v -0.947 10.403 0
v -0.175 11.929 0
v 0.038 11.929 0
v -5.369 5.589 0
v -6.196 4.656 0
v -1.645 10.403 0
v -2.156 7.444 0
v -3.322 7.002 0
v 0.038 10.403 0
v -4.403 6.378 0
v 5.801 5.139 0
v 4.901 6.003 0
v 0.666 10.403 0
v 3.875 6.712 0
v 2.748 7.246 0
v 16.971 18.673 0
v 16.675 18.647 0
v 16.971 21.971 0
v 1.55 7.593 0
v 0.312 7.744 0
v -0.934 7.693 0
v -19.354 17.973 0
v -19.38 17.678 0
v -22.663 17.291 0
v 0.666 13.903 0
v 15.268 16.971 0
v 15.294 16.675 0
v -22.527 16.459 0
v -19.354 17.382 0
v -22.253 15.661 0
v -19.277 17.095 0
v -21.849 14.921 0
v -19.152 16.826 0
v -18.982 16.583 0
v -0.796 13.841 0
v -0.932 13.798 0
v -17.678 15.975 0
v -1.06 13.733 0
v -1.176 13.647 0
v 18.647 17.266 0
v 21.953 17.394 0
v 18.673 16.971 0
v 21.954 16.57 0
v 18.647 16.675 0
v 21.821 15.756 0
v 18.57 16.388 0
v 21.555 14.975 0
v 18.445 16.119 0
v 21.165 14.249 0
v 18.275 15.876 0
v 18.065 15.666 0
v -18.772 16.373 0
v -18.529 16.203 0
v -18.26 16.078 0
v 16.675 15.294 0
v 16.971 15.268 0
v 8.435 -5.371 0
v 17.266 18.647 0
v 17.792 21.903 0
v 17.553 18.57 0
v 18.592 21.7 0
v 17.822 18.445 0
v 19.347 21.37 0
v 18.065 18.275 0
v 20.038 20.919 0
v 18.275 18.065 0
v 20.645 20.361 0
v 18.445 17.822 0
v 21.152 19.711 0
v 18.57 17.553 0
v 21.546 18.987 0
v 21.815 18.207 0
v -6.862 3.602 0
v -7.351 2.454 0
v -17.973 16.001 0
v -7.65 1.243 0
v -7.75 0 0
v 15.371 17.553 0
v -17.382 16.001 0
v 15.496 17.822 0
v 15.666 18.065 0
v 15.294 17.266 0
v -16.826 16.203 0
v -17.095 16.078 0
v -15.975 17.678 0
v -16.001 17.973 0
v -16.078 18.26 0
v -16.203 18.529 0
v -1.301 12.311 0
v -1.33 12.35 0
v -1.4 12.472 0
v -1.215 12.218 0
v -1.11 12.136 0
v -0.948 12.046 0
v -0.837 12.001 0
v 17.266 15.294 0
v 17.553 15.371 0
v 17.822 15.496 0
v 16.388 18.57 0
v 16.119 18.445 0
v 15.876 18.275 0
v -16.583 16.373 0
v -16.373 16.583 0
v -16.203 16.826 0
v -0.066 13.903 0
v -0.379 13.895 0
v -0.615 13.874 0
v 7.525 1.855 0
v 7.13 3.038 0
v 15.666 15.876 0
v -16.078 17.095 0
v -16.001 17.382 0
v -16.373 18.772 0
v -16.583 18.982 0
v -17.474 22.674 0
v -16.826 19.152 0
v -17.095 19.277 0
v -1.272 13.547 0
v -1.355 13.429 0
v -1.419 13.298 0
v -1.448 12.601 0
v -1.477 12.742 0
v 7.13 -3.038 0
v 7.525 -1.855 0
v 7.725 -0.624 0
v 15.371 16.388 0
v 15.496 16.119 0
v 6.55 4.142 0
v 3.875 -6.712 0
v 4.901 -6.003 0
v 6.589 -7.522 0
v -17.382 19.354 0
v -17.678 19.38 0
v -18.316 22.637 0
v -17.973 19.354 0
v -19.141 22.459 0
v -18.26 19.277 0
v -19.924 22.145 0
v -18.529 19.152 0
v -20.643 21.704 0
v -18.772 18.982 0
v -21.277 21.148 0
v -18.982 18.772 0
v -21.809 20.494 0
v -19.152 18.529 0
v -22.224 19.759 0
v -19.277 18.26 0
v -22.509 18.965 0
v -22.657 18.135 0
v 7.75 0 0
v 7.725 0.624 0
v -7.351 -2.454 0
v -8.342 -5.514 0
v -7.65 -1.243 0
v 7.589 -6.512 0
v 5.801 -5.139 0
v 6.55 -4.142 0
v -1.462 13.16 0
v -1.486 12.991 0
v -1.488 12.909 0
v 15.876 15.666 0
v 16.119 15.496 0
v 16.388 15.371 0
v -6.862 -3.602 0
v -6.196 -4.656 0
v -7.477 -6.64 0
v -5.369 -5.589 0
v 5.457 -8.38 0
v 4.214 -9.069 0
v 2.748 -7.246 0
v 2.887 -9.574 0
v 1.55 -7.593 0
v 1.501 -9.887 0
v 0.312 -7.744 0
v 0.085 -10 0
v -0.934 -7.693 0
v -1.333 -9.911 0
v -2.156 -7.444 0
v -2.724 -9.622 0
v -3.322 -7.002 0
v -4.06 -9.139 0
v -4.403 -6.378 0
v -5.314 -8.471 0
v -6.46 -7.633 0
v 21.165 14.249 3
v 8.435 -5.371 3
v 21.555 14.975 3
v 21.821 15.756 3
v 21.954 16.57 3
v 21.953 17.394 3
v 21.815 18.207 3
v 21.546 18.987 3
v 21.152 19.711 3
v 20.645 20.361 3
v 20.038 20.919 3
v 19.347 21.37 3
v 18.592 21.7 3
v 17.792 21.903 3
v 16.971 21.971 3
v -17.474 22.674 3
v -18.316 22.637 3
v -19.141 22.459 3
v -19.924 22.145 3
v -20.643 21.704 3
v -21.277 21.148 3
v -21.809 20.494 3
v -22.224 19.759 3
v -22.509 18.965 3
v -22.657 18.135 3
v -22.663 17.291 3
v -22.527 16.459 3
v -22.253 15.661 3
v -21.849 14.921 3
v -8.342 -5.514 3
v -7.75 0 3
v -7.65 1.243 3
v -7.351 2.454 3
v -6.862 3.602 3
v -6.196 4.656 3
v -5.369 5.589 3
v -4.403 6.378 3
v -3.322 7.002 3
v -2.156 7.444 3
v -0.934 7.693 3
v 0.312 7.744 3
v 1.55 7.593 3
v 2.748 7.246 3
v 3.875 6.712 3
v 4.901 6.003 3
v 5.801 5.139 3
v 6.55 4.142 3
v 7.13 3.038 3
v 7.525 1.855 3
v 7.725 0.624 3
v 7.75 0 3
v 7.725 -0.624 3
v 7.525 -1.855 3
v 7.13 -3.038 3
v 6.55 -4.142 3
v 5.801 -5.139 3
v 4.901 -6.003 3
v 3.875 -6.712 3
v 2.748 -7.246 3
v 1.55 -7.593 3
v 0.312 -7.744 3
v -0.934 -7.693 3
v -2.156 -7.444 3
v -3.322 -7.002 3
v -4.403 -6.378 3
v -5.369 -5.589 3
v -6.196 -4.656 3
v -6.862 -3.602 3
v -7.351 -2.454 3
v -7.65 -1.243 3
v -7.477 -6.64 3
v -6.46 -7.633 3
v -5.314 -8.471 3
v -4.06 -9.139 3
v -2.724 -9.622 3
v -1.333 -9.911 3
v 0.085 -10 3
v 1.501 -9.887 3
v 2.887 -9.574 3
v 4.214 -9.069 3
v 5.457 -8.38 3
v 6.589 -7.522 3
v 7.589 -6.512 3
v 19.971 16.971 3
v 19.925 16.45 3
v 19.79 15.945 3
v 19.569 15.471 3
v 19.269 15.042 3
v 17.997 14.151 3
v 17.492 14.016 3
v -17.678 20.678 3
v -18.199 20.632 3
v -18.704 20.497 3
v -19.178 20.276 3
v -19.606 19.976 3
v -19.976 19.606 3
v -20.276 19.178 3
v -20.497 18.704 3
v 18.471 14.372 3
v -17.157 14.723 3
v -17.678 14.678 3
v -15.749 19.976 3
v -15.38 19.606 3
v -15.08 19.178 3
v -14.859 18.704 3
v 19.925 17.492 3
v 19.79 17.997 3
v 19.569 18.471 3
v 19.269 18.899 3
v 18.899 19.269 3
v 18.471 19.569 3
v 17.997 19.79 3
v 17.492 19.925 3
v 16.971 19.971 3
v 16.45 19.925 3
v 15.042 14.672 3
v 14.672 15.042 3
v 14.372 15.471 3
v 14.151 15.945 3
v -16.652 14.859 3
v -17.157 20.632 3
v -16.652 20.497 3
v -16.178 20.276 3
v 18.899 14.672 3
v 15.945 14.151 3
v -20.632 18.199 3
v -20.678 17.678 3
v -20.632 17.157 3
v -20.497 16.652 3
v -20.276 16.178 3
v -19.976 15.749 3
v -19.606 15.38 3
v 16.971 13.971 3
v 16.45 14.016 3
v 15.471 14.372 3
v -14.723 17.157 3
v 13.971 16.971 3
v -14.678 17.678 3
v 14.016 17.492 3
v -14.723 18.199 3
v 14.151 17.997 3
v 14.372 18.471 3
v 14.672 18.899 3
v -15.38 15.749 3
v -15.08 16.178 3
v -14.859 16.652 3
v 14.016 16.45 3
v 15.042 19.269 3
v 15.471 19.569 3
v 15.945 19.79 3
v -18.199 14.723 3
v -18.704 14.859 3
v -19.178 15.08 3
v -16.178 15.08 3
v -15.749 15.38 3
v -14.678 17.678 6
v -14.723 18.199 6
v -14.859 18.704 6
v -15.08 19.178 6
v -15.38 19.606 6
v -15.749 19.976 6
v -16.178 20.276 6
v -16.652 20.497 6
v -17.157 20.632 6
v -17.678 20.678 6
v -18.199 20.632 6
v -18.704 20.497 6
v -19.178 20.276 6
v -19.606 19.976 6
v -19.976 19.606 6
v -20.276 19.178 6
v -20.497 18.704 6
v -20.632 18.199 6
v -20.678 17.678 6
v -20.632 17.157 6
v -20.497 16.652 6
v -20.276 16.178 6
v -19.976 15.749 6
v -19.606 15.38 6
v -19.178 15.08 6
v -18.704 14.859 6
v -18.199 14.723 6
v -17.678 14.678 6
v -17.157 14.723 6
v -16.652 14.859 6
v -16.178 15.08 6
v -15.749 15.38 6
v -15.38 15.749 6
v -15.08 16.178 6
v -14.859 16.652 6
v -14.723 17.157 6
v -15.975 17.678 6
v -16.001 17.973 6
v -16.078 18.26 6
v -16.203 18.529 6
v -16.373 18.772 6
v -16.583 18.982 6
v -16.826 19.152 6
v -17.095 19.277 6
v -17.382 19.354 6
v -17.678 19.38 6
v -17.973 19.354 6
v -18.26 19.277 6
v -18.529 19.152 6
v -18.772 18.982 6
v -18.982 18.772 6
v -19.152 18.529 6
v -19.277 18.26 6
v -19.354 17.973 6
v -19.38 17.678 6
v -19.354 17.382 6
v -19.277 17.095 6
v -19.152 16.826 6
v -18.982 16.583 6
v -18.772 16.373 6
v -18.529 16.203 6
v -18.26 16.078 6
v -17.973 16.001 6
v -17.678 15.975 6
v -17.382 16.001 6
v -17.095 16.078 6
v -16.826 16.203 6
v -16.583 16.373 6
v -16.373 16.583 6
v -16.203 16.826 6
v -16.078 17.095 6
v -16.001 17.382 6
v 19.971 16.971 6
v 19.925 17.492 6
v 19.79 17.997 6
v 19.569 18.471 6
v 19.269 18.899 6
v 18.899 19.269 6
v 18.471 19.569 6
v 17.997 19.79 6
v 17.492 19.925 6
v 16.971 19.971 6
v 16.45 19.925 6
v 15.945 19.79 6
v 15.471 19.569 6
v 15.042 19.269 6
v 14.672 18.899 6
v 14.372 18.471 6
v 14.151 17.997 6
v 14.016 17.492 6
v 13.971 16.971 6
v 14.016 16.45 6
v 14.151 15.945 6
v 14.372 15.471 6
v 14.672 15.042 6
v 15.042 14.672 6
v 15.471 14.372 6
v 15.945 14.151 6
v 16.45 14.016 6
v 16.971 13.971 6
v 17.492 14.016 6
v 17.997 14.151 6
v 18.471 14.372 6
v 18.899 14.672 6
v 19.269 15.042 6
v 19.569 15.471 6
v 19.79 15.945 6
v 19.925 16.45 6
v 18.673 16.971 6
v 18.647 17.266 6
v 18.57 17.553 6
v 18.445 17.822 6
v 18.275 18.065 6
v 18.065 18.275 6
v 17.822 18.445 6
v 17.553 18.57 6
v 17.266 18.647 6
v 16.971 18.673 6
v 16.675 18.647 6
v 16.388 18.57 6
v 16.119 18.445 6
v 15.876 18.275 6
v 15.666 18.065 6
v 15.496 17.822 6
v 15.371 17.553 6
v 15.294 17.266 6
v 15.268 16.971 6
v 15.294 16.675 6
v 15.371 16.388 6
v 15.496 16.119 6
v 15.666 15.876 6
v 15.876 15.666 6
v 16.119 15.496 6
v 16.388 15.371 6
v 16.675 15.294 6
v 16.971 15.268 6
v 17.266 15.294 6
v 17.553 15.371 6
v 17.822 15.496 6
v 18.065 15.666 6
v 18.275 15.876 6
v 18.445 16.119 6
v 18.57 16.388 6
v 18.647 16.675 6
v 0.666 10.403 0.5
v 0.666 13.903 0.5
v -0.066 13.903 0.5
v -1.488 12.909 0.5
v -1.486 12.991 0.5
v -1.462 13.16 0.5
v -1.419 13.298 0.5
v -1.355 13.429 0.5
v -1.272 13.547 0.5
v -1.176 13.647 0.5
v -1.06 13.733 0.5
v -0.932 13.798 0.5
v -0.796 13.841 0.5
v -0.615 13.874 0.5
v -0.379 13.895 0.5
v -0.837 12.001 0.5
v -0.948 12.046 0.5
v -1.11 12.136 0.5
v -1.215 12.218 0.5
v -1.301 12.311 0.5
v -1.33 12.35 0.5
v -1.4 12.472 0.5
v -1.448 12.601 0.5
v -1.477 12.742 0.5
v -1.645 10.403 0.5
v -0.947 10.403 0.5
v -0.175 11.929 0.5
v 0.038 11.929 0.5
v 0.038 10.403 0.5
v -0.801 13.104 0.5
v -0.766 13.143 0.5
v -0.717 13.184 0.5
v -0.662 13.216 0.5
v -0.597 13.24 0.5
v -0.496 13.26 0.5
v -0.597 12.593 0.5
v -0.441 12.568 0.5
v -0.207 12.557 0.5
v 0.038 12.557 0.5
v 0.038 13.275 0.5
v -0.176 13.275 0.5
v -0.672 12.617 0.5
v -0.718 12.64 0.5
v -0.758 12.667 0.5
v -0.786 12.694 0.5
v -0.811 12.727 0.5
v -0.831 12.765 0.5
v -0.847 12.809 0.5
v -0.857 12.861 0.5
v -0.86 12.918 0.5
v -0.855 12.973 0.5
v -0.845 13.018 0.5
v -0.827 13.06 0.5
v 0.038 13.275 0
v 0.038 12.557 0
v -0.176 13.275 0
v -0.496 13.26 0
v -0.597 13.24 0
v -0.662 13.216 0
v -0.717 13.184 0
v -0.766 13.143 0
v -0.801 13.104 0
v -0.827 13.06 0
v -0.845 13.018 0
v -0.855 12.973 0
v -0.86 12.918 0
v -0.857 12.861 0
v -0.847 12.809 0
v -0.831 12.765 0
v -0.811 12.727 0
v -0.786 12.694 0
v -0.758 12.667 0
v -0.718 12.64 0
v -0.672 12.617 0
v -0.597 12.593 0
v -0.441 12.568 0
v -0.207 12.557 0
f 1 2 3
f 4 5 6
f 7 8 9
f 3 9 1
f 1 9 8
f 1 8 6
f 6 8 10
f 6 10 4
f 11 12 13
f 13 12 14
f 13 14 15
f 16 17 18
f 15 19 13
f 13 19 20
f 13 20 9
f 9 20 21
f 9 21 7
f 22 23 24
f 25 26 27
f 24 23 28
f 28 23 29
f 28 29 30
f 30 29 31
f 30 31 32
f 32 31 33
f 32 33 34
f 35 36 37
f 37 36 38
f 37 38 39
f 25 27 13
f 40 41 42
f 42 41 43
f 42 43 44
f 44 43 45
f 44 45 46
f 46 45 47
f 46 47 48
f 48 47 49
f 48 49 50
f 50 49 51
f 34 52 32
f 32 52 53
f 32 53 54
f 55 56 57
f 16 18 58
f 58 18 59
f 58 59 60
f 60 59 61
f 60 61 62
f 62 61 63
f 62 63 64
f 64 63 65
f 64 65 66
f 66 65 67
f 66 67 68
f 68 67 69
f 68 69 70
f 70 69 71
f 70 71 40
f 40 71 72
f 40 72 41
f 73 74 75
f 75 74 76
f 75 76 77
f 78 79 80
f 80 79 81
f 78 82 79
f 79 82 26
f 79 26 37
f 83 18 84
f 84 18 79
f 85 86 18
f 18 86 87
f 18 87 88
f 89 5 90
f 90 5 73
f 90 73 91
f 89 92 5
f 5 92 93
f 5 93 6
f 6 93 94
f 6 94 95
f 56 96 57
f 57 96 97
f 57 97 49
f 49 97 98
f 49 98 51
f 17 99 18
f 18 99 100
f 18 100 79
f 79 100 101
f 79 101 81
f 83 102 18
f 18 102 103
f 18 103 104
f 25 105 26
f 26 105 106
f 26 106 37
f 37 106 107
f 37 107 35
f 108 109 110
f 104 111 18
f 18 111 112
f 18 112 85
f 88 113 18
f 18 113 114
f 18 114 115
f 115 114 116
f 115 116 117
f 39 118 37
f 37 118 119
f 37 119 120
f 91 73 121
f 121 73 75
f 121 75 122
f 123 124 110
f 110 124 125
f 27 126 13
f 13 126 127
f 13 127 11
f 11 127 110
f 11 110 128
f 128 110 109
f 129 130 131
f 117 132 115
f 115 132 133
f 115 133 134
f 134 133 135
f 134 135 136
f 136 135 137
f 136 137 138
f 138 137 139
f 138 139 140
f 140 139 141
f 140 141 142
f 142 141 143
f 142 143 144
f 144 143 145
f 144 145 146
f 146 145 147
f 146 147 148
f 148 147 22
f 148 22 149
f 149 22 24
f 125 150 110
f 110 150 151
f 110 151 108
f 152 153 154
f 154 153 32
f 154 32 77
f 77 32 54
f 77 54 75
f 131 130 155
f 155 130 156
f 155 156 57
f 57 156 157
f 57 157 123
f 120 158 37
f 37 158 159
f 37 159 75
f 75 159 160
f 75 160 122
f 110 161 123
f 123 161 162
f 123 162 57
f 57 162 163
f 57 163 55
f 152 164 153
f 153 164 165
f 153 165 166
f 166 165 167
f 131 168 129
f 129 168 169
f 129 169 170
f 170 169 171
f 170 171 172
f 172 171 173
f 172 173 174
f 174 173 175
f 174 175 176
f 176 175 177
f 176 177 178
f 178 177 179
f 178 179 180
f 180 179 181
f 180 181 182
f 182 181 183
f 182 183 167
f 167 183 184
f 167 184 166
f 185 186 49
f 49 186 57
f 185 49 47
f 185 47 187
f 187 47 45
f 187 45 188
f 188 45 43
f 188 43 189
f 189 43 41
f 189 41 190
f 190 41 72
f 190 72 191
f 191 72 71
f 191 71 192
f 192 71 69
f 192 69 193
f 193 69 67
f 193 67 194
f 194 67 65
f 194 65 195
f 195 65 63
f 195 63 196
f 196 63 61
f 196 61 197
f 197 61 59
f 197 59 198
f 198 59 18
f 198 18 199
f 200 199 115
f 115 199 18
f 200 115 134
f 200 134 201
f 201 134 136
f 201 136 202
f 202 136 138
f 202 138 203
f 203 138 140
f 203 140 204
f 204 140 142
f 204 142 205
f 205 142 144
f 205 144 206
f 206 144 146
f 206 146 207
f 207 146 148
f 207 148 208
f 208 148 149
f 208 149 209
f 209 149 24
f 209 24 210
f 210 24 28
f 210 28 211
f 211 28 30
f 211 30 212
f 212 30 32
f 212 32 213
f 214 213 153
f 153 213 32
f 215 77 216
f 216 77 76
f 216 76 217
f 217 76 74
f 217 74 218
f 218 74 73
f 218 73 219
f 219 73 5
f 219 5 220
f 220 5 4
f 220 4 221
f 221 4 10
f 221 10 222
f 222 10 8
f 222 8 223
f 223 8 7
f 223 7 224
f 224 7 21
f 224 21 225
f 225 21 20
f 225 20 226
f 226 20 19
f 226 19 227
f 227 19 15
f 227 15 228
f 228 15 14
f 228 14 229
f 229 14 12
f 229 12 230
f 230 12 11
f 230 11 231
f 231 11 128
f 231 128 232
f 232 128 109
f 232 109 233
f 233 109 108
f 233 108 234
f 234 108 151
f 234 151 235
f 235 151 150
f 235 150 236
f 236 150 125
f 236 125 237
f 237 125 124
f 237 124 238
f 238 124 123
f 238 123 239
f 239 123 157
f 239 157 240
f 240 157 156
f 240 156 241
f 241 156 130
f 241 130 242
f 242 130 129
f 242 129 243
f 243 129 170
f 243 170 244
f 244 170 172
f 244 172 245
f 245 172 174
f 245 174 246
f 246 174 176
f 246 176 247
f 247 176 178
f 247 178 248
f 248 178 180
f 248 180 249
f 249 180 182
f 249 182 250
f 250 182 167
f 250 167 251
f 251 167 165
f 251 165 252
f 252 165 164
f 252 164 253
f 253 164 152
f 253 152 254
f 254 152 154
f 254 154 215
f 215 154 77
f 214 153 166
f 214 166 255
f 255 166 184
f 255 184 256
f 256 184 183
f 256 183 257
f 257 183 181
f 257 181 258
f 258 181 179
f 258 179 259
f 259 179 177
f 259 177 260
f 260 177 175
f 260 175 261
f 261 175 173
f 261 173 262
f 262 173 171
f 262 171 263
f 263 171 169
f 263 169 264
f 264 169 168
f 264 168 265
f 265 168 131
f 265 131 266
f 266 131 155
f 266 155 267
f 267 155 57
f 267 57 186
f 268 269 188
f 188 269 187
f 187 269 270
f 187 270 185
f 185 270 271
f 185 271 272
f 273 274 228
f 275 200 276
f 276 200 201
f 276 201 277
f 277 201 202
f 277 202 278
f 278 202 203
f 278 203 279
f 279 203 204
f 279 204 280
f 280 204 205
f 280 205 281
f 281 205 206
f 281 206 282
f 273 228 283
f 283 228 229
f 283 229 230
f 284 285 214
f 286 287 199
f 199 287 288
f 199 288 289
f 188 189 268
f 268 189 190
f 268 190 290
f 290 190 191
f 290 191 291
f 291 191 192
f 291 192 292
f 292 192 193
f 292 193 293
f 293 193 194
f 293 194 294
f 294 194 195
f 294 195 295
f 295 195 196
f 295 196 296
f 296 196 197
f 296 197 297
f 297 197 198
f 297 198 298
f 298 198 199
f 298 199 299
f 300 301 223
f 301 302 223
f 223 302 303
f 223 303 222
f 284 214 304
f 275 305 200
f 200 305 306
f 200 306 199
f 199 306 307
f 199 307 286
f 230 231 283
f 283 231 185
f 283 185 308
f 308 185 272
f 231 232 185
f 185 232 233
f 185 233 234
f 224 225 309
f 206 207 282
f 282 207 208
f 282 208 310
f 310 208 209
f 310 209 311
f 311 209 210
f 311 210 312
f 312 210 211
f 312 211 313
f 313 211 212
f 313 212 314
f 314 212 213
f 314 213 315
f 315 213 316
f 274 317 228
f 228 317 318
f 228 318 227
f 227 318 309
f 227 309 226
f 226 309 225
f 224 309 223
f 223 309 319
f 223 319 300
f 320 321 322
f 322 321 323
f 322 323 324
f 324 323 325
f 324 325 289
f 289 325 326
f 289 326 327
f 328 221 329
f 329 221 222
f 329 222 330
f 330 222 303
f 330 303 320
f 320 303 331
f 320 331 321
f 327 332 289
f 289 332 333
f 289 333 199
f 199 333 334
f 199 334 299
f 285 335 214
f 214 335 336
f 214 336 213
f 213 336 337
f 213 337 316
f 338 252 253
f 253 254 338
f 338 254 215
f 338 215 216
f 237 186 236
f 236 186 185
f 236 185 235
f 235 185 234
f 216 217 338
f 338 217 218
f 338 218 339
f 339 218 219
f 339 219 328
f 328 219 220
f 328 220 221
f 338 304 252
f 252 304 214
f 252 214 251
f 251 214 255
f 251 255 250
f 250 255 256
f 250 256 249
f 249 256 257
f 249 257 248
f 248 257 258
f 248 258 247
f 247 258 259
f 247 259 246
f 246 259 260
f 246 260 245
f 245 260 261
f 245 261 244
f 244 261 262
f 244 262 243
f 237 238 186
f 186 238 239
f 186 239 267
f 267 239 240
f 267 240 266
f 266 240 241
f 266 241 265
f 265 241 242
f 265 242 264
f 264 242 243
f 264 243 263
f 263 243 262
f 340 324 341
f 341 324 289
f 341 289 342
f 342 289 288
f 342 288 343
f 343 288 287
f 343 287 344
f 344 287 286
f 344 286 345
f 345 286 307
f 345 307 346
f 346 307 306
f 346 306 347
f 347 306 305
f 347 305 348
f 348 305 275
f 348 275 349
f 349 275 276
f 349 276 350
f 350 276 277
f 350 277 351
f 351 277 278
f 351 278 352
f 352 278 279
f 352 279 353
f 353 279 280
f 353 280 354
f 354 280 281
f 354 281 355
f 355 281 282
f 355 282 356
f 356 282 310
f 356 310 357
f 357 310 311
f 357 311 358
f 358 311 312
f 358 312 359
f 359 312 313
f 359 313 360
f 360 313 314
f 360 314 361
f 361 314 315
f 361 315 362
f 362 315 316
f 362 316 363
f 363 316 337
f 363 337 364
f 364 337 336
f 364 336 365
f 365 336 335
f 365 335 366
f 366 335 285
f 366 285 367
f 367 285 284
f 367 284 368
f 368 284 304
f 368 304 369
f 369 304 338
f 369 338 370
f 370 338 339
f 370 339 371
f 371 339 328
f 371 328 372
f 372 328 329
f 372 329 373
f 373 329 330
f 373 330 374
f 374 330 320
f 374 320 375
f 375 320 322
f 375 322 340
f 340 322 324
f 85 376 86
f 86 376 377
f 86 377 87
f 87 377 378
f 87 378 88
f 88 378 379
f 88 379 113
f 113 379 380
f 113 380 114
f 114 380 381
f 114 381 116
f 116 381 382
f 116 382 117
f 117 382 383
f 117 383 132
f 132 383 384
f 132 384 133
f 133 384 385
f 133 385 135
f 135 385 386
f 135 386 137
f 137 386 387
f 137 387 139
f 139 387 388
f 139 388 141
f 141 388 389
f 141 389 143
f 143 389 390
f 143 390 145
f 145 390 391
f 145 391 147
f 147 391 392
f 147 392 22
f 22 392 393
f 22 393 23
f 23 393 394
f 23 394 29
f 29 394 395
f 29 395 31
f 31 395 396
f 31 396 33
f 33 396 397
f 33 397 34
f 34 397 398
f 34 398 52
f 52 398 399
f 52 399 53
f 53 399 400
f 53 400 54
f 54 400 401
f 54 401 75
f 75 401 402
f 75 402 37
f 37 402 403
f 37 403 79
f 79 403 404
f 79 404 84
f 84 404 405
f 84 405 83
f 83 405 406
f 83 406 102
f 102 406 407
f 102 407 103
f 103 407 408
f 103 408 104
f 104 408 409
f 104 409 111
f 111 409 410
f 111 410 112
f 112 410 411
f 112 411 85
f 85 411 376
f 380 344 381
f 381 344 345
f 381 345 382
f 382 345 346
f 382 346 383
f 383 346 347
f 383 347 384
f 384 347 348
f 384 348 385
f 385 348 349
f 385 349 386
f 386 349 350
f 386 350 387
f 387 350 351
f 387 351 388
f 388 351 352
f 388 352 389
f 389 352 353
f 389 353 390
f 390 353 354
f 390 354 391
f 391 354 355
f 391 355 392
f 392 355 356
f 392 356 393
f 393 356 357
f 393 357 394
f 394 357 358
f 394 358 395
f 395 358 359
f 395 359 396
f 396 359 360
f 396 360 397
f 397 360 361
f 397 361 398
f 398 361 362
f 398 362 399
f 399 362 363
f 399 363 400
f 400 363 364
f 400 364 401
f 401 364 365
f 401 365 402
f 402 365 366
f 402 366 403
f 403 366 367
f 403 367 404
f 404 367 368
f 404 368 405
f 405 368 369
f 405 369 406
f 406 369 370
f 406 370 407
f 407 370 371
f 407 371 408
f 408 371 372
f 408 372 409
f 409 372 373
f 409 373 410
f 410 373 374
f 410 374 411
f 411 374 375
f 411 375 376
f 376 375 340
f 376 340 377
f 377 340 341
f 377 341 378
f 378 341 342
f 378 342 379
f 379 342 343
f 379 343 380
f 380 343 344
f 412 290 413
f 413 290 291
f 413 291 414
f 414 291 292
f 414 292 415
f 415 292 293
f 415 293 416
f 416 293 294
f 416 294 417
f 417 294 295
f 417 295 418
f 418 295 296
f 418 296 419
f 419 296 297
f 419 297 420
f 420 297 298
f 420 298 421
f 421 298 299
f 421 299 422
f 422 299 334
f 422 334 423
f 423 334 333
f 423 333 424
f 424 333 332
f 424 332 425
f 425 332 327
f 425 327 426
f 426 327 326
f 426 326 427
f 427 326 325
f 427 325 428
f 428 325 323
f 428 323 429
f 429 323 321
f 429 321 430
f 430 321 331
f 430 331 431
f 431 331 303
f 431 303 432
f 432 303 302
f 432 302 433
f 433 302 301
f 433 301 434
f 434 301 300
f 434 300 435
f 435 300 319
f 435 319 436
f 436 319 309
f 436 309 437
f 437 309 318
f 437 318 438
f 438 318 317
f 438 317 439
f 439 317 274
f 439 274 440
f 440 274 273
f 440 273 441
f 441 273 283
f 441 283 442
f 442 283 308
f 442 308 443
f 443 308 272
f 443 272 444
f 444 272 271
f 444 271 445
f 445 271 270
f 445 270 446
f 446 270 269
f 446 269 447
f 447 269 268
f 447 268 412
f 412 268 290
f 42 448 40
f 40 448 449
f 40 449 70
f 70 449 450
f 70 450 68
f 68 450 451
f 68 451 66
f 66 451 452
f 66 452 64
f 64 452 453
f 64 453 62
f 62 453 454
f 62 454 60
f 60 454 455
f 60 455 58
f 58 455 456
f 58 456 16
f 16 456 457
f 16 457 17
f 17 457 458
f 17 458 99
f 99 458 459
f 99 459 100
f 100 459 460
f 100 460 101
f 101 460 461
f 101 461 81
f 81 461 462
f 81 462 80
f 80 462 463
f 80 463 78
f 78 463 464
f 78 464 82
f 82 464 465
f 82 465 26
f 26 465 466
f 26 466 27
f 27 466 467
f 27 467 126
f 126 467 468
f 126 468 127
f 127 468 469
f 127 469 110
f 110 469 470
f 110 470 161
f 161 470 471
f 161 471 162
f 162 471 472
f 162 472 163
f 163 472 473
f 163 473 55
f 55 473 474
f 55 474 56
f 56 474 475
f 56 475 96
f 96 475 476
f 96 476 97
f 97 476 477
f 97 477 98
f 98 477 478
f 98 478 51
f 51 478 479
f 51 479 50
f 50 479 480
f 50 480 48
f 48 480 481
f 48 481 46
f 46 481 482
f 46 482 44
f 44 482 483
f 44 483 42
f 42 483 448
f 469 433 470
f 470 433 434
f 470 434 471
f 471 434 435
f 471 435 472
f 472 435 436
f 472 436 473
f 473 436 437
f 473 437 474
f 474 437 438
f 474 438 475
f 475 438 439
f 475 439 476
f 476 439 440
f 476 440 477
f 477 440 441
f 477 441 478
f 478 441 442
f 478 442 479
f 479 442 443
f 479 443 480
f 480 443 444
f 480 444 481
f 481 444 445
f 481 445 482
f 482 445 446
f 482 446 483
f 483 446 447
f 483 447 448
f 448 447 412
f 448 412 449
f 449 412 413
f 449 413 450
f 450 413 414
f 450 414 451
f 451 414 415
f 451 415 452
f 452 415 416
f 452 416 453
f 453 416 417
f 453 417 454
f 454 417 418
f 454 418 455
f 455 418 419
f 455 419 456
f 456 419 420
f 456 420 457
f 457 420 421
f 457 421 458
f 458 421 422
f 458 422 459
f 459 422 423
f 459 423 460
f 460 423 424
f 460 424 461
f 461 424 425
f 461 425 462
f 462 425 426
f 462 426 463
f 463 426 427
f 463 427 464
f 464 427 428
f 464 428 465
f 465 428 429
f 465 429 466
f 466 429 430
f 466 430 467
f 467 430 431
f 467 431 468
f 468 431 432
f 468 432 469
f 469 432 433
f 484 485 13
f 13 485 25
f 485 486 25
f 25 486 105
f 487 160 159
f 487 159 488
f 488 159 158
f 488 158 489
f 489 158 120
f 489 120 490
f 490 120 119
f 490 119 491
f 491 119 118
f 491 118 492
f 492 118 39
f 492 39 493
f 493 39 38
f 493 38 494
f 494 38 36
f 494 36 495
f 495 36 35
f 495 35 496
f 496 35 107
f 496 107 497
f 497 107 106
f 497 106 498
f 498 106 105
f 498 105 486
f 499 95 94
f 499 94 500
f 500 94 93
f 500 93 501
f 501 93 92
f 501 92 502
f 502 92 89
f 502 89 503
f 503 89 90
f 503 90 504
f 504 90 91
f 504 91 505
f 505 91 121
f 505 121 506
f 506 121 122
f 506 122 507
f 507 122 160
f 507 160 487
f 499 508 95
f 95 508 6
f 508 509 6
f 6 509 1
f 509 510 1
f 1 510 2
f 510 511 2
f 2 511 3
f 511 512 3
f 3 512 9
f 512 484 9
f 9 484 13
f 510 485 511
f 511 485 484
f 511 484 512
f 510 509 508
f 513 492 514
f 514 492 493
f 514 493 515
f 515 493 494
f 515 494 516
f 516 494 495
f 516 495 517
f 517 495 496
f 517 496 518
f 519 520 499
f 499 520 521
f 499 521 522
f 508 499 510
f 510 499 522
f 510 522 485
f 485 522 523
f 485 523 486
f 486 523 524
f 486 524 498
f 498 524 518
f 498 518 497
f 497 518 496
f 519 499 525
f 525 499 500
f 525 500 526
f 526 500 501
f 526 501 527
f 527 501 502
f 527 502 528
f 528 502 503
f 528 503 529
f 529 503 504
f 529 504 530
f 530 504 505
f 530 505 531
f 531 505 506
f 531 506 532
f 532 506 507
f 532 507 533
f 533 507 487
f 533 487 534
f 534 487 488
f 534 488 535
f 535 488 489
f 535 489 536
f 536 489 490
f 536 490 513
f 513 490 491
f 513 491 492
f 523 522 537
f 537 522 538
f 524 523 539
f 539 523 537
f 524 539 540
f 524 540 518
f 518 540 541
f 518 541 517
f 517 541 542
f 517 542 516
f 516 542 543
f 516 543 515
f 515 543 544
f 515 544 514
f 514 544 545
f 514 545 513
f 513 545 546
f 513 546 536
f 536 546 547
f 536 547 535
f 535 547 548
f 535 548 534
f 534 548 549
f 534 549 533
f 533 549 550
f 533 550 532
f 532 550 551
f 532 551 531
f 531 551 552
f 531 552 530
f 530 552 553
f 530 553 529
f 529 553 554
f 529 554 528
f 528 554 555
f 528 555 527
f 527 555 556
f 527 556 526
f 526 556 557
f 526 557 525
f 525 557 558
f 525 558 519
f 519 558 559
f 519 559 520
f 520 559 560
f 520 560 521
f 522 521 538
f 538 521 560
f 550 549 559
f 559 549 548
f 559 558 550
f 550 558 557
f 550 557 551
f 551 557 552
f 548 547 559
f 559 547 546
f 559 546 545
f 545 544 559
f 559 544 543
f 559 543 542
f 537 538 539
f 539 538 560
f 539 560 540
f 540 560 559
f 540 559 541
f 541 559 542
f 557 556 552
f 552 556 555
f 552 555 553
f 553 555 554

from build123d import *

# Parameters (mm, degrees)
SKETCH1_R                = 7.75
SKETCH1_R_2              = 3
BOSS_EXTRUDE3_DEPTH      = 3
BOSS_EXTRUDE4_DEPTH      = 3
BOSS_EXTRUDE4_DEPTH_BACK = 3
SKETCH3_R                = 3
SKETCH3_R_2              = 1.7025
CUT_EXTRUDE2_DEPTH       = 0.5


with BuildPart() as part:
    # Sketch1 → Boss-Extrude3 (new body)
    with BuildSketch(Plane.XY):
        with BuildLine():
            Line((8.434915556, -5.371424351), (21.165047264, 14.249110995))
            ThreePointArc((21.165047264, 14.249110995), (21.364152327, 19.357269814), (16.970562748, 21.970562748))
            Line((16.970562748, 21.970562748), (-17.47367286, 22.673506332))
            ThreePointArc((-17.47367286, 22.673506332), (-22.032126076, 20.135047844), (-21.848877926, 14.920674696))
            Line((-21.848877926, 14.920674696), (-8.342416793, -5.513989668))
            ThreePointArc((-8.342416793, -5.513989668), (0.084971894, -9.999638982), (8.434915556, -5.371424351))
        make_face()
        Circle(SKETCH1_R, mode=Mode.SUBTRACT)
        with Locations((-17.67766953, 17.67766953)):
            Circle(SKETCH1_R_2, mode=Mode.SUBTRACT)
        with Locations((16.970562748, 16.970562748)):
            Circle(SKETCH1_R_2, mode=Mode.SUBTRACT)
    extrude(amount=BOSS_EXTRUDE3_DEPTH)

    # Sketch3 → Boss-Extrude4 (add, two sides: drawn at the far end of the back side and taken through both)
    # profile 1 of 2: a face of its own
    with BuildSketch(Plane.XY.offset(3).offset(-BOSS_EXTRUDE4_DEPTH_BACK)):
        with Locations((-17.67766953, 17.67766953)):
            Circle(SKETCH3_R)
        with Locations((-17.67766953, 17.67766953)):
            Circle(SKETCH3_R_2, mode=Mode.SUBTRACT)
    # profile 2 of 2: a face of its own
    with BuildSketch(Plane.XY.offset(3).offset(-BOSS_EXTRUDE4_DEPTH_BACK)):
        with Locations((16.970562748, 16.970562748)):
            Circle(SKETCH3_R)
        with Locations((16.970562748, 16.970562748)):
            Circle(SKETCH3_R_2, mode=Mode.SUBTRACT)
    extrude(amount=BOSS_EXTRUDE4_DEPTH + BOSS_EXTRUDE4_DEPTH_BACK)

    # Sketch4 → Cut-Extrude2 (cut)
    with BuildSketch(Plane(origin=(0, 0, 0), x_dir=(-1, 0, 0), z_dir=(0, 0, -1))):
        with BuildLine():
            Line((-0.665908197, 13.903438218), (0.066062957, 13.903438218))
            add(Edge.make_bspline(
                [(0.066062957, 13.903438218), (0.114446028, 13.903266485), (0.207500301, 13.902936196), (0.341679481, 13.897725107), (0.46494151, 13.890473447), (0.577468889, 13.879407223), (0.679213477, 13.864734748), (0.770277246, 13.847438327), (0.850657534, 13.827725347), (0.921032238, 13.803161419), (0.984541929, 13.775453681), (1.04374179, 13.743616981), (1.099937859, 13.708005833), (1.152754525, 13.667683209), (1.202650778, 13.623374504), (1.24972075, 13.575035117), (1.293299299, 13.522255149), (1.333116584, 13.465368105), (1.369406835, 13.405524238), (1.401479805, 13.342641383), (1.427561597, 13.27667581), (1.450607657, 13.208580863), (1.467206987, 13.137383112), (1.478751578, 13.063775679), (1.487204076, 12.987499458), (1.487690054, 12.93568078), (1.487937957, 12.909247512)],
                knots=[0, 0, 0, 0, 1.749336639, 3.364467119, 4.854658419, 6.213483162, 7.451590619, 8.570285859, 9.5643256, 10.440900261, 11.26203566, 12.067320669, 12.869050712, 13.665104639, 14.467235401, 15.27997916, 16.102287765, 16.939272006, 17.78853747, 18.631303466, 19.488103222, 20.351255419, 21.228522269, 22.127379805, 23.044756219, 24, 24, 24, 24], degree=3))
            add(Edge.make_bspline(
                [(1.487937957, 12.909247512), (1.487293995, 12.881657254), (1.486031303, 12.827557785), (1.479229754, 12.748090078), (1.46679866, 12.672060935), (1.447969959, 12.599692959), (1.426328814, 12.530085447), (1.397551641, 12.4645227), (1.365073758, 12.402051204), (1.326500725, 12.343554641), (1.284168705, 12.287733687), (1.234937457, 12.236727048), (1.181996409, 12.187793312), (1.122369551, 12.143997521), (1.058685292, 12.102378362), (0.989678292, 12.064660321), (0.915798913, 12.029895252), (0.863858052, 12.010507848), (0.837296932, 12.000593666)],
                knots=[0, 0, 0, 0, 1.099860209, 2.156625411, 3.176576793, 4.16617041, 5.135385252, 6.078461593, 7.016046972, 7.938469504, 8.868247731, 9.803980173, 10.76021508, 11.73834243, 12.748633912, 13.790971185, 14.870363756, 16, 16, 16, 16], degree=3))
            Line((0.837296932, 12.000593666), (1.644989239, 10.403438218))
            Line((1.644989239, 10.403438218), (0.946671932, 10.403438218))
            Line((0.946671932, 10.403438218), (0.175437957, 11.929079243))
            Line((0.175437957, 11.929079243), (-0.037703068, 11.929079243))
            Line((-0.037703068, 11.929079243), (-0.037703068, 10.403438218))
            Line((-0.037703068, 10.403438218), (-0.665908197, 10.403438218))
            Line((-0.665908197, 10.403438218), (-0.665908197, 13.903438218))
        make_face()
        with BuildLine():
            Line((-0.037703068, 12.557284371), (0.206988438, 12.557284371))
            add(Edge.make_bspline(
                [(0.206988438, 12.557284371), (0.236904009, 12.557621301), (0.294185898, 12.558266448), (0.376564779, 12.561258908), (0.45138445, 12.568469257), (0.51896621, 12.577579265), (0.579650126, 12.588098083), (0.632894918, 12.60317219), (0.679521008, 12.619324476), (0.718975873, 12.639397578), (0.752685204, 12.662225049), (0.781791054, 12.688157623), (0.805865765, 12.718171276), (0.82568048, 12.751450365), (0.841094174, 12.788289236), (0.85234499, 12.828283482), (0.858632532, 12.871888689), (0.859355935, 12.90198222), (0.859732829, 12.917660974)],
                knots=[0, 0, 0, 0, 1.688639943, 3.233382647, 4.650958383, 5.928841754, 7.082724185, 8.122798841, 9.049171256, 9.863274652, 10.613301712, 11.341792392, 12.054588806, 12.776240173, 13.521029143, 14.301969904, 15.115324896, 16, 16, 16, 16], degree=3))
            add(Edge.make_bspline(
                [(0.859732829, 12.917660974), (0.859020277, 12.936210085), (0.857620601, 12.972646377), (0.843731463, 13.02510186), (0.821622957, 13.073652999), (0.791318249, 13.118080428), (0.75315341, 13.157028578), (0.709356247, 13.191361683), (0.658981509, 13.218509733), (0.612338294, 13.236416298), (0.56990387, 13.247129981), (0.531608141, 13.255113722), (0.487261456, 13.260772029), (0.436830336, 13.266773671), (0.380443332, 13.270665431), (0.317793101, 13.273505641), (0.249059573, 13.27466771), (0.201145777, 13.275039203), (0.176139079, 13.275233089)],
                knots=[0, 0, 0, 0, 1.020303359, 2.004196876, 2.966617323, 3.9489082, 4.950758222, 5.960522915, 7.003732012, 8.091992268, 8.70421221, 9.413913587, 10.24622431, 11.166358409, 12.212345909, 13.359657661, 14.621978493, 16, 16, 16, 16], degree=3))
            Line((0.176139079, 13.275233089), (-0.037703068, 13.275233089))
            Line((-0.037703068, 13.275233089), (-0.037703068, 12.557284371))
        make_face(mode=Mode.SUBTRACT)
    extrude(amount=-CUT_EXTRUDE2_DEPTH, mode=Mode.SUBTRACT)


solid = part.part
